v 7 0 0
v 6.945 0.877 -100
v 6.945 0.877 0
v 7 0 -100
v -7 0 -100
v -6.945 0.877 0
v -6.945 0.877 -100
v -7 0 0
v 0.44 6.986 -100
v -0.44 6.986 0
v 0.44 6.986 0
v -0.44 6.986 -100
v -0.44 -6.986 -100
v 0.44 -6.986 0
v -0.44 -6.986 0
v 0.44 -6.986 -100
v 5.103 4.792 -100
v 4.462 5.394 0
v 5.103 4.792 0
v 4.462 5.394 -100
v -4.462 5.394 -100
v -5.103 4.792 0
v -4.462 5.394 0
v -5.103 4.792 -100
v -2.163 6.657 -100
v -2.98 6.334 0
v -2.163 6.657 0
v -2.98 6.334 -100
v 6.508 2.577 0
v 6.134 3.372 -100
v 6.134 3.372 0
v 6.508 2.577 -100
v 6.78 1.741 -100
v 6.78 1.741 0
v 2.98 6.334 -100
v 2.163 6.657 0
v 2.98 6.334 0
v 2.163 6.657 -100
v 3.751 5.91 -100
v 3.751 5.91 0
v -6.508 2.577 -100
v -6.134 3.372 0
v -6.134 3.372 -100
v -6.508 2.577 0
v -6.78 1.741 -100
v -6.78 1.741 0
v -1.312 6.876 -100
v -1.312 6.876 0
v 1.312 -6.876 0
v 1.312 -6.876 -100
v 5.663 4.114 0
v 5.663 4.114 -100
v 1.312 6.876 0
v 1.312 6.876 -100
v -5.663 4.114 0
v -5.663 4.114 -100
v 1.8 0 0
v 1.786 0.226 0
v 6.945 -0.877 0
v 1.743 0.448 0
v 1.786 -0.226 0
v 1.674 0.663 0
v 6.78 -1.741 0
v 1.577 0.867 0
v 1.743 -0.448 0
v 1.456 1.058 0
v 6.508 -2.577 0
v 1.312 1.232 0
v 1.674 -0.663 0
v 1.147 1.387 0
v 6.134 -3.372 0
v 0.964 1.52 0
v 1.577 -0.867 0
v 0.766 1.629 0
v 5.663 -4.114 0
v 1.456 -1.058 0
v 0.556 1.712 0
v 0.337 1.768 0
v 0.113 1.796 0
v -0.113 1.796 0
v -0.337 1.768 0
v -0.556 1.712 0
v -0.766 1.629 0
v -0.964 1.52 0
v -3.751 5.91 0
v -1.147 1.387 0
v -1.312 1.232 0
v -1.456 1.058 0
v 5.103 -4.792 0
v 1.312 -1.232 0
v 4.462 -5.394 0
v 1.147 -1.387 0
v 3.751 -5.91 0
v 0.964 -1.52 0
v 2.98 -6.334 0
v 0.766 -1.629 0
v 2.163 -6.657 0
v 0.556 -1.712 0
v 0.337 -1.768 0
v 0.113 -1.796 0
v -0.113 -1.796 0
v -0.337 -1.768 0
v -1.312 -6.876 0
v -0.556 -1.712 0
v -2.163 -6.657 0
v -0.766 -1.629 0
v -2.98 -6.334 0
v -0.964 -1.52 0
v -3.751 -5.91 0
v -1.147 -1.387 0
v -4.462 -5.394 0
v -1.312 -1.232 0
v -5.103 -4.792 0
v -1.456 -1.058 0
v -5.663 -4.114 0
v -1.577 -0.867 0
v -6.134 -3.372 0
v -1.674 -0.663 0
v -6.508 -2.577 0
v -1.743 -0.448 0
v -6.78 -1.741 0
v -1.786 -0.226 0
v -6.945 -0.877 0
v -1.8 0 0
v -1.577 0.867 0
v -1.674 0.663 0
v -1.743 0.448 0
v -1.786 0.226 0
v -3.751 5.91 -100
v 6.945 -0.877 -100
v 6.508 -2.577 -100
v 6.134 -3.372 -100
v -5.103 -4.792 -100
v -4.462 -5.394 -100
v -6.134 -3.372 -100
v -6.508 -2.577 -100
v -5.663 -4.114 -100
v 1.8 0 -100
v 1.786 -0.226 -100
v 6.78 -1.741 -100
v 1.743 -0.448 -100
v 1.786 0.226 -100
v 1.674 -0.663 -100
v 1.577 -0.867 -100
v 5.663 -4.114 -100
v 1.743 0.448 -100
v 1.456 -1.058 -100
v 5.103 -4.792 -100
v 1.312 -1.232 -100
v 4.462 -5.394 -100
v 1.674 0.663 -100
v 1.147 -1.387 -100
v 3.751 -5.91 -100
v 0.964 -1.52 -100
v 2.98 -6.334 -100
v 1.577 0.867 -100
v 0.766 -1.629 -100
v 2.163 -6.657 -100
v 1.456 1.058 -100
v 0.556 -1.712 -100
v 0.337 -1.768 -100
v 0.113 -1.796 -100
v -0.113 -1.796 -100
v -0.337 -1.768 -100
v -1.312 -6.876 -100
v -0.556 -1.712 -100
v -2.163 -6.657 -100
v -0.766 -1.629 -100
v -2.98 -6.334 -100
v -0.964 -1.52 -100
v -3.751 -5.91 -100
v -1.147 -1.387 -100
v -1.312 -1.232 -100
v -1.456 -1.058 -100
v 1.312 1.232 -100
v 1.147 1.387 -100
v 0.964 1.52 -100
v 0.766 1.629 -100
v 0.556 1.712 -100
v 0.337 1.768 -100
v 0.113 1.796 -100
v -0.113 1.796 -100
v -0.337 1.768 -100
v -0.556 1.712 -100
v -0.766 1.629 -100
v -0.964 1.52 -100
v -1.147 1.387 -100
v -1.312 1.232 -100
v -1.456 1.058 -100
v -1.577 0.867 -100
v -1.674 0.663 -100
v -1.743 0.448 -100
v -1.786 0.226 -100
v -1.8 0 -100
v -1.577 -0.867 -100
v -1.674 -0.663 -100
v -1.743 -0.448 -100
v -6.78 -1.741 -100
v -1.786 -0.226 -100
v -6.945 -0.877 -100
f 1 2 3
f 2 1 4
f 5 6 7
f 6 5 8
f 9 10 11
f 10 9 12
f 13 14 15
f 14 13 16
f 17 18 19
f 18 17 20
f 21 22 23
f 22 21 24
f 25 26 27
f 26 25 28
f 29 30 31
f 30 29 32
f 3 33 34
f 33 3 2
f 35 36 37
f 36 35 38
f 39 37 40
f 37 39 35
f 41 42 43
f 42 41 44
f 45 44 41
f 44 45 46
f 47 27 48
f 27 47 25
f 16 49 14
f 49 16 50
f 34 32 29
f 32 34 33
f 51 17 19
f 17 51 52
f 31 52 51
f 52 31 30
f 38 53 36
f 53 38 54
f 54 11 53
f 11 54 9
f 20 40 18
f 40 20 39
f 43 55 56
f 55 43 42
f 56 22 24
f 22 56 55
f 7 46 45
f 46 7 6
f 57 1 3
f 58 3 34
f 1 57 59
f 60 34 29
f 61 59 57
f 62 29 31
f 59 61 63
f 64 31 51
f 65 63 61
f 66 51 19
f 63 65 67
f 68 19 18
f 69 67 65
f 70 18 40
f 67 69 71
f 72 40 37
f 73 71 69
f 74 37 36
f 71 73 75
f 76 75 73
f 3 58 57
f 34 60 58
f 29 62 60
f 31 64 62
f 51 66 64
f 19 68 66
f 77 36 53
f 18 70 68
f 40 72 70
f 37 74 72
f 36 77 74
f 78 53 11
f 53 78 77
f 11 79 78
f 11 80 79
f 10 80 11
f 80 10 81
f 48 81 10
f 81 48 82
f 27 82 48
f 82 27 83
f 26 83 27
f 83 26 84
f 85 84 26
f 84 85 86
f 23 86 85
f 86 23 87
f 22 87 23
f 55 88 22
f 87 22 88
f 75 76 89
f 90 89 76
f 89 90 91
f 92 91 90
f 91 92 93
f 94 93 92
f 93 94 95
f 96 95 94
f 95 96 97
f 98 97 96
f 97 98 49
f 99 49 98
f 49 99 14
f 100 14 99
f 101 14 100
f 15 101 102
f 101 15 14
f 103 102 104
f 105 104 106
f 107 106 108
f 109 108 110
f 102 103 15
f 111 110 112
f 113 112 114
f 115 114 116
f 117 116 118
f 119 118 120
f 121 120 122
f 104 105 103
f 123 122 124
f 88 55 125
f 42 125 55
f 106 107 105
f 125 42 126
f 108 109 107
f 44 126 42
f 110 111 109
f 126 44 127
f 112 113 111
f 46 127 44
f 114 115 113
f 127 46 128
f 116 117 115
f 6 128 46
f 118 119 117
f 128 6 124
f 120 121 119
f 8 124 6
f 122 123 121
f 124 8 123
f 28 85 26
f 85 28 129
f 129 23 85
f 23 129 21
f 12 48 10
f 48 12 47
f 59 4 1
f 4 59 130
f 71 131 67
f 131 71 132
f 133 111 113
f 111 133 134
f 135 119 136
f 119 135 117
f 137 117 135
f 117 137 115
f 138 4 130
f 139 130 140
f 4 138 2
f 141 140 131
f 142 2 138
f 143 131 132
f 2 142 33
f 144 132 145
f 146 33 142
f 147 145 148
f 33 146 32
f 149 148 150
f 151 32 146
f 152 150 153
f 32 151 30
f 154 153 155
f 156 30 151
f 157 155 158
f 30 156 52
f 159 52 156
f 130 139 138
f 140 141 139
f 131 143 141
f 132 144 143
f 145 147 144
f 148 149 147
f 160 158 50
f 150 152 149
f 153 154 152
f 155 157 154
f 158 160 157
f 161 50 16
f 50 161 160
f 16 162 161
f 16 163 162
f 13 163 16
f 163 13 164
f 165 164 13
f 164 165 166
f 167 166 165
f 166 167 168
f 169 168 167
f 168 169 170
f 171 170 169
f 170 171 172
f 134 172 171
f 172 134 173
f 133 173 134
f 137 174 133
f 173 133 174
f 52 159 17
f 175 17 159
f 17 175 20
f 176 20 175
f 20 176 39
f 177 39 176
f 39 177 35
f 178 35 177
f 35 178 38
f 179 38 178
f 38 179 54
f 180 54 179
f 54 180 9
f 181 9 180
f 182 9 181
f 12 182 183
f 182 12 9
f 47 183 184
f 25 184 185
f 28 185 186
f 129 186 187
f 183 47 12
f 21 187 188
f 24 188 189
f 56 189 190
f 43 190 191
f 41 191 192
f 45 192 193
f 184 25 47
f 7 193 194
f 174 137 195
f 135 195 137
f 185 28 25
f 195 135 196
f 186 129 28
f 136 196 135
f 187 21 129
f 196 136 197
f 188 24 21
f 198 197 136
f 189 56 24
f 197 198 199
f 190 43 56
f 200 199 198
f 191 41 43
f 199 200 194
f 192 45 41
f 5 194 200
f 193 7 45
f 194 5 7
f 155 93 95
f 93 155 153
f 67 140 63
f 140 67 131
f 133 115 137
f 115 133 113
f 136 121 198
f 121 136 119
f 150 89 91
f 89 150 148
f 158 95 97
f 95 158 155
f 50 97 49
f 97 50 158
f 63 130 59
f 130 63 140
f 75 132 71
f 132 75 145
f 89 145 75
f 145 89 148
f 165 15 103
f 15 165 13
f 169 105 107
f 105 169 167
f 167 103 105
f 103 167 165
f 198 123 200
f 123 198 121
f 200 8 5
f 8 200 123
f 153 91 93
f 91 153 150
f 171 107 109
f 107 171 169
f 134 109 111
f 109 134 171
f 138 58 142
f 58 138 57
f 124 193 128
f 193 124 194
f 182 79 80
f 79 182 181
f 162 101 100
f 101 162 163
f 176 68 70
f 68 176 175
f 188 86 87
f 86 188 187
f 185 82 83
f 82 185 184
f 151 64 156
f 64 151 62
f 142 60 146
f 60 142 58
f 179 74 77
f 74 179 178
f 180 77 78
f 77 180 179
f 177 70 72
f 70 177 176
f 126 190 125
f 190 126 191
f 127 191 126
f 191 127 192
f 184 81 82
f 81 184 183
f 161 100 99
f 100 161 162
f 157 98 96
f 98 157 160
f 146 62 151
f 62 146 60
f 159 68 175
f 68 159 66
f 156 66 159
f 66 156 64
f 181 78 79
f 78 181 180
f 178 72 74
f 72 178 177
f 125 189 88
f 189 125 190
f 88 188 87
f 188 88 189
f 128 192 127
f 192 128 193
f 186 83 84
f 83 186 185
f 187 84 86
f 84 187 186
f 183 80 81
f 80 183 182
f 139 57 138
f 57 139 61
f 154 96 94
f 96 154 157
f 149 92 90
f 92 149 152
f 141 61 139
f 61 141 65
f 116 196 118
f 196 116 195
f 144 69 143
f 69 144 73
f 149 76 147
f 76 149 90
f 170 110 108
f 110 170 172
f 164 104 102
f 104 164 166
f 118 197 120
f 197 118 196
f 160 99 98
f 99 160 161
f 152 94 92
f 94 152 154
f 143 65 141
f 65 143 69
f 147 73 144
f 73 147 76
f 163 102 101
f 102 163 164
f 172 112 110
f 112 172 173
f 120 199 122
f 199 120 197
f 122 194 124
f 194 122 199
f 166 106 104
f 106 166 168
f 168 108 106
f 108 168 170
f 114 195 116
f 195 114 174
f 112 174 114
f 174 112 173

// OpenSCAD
$fn = 50;


difference() {
	union() {
		translate(v = [0, 0, -100.0000000000]) {
			cylinder(h = 100, r = 7.0000000000);
		}
		cylinder(h = 0, r = 13.0000000000);
	}
	union() {
		#translate(v = [0, 0, -100]) {
			cylinder(h = 100, r = 1.8000000000);
		}
	}
}
